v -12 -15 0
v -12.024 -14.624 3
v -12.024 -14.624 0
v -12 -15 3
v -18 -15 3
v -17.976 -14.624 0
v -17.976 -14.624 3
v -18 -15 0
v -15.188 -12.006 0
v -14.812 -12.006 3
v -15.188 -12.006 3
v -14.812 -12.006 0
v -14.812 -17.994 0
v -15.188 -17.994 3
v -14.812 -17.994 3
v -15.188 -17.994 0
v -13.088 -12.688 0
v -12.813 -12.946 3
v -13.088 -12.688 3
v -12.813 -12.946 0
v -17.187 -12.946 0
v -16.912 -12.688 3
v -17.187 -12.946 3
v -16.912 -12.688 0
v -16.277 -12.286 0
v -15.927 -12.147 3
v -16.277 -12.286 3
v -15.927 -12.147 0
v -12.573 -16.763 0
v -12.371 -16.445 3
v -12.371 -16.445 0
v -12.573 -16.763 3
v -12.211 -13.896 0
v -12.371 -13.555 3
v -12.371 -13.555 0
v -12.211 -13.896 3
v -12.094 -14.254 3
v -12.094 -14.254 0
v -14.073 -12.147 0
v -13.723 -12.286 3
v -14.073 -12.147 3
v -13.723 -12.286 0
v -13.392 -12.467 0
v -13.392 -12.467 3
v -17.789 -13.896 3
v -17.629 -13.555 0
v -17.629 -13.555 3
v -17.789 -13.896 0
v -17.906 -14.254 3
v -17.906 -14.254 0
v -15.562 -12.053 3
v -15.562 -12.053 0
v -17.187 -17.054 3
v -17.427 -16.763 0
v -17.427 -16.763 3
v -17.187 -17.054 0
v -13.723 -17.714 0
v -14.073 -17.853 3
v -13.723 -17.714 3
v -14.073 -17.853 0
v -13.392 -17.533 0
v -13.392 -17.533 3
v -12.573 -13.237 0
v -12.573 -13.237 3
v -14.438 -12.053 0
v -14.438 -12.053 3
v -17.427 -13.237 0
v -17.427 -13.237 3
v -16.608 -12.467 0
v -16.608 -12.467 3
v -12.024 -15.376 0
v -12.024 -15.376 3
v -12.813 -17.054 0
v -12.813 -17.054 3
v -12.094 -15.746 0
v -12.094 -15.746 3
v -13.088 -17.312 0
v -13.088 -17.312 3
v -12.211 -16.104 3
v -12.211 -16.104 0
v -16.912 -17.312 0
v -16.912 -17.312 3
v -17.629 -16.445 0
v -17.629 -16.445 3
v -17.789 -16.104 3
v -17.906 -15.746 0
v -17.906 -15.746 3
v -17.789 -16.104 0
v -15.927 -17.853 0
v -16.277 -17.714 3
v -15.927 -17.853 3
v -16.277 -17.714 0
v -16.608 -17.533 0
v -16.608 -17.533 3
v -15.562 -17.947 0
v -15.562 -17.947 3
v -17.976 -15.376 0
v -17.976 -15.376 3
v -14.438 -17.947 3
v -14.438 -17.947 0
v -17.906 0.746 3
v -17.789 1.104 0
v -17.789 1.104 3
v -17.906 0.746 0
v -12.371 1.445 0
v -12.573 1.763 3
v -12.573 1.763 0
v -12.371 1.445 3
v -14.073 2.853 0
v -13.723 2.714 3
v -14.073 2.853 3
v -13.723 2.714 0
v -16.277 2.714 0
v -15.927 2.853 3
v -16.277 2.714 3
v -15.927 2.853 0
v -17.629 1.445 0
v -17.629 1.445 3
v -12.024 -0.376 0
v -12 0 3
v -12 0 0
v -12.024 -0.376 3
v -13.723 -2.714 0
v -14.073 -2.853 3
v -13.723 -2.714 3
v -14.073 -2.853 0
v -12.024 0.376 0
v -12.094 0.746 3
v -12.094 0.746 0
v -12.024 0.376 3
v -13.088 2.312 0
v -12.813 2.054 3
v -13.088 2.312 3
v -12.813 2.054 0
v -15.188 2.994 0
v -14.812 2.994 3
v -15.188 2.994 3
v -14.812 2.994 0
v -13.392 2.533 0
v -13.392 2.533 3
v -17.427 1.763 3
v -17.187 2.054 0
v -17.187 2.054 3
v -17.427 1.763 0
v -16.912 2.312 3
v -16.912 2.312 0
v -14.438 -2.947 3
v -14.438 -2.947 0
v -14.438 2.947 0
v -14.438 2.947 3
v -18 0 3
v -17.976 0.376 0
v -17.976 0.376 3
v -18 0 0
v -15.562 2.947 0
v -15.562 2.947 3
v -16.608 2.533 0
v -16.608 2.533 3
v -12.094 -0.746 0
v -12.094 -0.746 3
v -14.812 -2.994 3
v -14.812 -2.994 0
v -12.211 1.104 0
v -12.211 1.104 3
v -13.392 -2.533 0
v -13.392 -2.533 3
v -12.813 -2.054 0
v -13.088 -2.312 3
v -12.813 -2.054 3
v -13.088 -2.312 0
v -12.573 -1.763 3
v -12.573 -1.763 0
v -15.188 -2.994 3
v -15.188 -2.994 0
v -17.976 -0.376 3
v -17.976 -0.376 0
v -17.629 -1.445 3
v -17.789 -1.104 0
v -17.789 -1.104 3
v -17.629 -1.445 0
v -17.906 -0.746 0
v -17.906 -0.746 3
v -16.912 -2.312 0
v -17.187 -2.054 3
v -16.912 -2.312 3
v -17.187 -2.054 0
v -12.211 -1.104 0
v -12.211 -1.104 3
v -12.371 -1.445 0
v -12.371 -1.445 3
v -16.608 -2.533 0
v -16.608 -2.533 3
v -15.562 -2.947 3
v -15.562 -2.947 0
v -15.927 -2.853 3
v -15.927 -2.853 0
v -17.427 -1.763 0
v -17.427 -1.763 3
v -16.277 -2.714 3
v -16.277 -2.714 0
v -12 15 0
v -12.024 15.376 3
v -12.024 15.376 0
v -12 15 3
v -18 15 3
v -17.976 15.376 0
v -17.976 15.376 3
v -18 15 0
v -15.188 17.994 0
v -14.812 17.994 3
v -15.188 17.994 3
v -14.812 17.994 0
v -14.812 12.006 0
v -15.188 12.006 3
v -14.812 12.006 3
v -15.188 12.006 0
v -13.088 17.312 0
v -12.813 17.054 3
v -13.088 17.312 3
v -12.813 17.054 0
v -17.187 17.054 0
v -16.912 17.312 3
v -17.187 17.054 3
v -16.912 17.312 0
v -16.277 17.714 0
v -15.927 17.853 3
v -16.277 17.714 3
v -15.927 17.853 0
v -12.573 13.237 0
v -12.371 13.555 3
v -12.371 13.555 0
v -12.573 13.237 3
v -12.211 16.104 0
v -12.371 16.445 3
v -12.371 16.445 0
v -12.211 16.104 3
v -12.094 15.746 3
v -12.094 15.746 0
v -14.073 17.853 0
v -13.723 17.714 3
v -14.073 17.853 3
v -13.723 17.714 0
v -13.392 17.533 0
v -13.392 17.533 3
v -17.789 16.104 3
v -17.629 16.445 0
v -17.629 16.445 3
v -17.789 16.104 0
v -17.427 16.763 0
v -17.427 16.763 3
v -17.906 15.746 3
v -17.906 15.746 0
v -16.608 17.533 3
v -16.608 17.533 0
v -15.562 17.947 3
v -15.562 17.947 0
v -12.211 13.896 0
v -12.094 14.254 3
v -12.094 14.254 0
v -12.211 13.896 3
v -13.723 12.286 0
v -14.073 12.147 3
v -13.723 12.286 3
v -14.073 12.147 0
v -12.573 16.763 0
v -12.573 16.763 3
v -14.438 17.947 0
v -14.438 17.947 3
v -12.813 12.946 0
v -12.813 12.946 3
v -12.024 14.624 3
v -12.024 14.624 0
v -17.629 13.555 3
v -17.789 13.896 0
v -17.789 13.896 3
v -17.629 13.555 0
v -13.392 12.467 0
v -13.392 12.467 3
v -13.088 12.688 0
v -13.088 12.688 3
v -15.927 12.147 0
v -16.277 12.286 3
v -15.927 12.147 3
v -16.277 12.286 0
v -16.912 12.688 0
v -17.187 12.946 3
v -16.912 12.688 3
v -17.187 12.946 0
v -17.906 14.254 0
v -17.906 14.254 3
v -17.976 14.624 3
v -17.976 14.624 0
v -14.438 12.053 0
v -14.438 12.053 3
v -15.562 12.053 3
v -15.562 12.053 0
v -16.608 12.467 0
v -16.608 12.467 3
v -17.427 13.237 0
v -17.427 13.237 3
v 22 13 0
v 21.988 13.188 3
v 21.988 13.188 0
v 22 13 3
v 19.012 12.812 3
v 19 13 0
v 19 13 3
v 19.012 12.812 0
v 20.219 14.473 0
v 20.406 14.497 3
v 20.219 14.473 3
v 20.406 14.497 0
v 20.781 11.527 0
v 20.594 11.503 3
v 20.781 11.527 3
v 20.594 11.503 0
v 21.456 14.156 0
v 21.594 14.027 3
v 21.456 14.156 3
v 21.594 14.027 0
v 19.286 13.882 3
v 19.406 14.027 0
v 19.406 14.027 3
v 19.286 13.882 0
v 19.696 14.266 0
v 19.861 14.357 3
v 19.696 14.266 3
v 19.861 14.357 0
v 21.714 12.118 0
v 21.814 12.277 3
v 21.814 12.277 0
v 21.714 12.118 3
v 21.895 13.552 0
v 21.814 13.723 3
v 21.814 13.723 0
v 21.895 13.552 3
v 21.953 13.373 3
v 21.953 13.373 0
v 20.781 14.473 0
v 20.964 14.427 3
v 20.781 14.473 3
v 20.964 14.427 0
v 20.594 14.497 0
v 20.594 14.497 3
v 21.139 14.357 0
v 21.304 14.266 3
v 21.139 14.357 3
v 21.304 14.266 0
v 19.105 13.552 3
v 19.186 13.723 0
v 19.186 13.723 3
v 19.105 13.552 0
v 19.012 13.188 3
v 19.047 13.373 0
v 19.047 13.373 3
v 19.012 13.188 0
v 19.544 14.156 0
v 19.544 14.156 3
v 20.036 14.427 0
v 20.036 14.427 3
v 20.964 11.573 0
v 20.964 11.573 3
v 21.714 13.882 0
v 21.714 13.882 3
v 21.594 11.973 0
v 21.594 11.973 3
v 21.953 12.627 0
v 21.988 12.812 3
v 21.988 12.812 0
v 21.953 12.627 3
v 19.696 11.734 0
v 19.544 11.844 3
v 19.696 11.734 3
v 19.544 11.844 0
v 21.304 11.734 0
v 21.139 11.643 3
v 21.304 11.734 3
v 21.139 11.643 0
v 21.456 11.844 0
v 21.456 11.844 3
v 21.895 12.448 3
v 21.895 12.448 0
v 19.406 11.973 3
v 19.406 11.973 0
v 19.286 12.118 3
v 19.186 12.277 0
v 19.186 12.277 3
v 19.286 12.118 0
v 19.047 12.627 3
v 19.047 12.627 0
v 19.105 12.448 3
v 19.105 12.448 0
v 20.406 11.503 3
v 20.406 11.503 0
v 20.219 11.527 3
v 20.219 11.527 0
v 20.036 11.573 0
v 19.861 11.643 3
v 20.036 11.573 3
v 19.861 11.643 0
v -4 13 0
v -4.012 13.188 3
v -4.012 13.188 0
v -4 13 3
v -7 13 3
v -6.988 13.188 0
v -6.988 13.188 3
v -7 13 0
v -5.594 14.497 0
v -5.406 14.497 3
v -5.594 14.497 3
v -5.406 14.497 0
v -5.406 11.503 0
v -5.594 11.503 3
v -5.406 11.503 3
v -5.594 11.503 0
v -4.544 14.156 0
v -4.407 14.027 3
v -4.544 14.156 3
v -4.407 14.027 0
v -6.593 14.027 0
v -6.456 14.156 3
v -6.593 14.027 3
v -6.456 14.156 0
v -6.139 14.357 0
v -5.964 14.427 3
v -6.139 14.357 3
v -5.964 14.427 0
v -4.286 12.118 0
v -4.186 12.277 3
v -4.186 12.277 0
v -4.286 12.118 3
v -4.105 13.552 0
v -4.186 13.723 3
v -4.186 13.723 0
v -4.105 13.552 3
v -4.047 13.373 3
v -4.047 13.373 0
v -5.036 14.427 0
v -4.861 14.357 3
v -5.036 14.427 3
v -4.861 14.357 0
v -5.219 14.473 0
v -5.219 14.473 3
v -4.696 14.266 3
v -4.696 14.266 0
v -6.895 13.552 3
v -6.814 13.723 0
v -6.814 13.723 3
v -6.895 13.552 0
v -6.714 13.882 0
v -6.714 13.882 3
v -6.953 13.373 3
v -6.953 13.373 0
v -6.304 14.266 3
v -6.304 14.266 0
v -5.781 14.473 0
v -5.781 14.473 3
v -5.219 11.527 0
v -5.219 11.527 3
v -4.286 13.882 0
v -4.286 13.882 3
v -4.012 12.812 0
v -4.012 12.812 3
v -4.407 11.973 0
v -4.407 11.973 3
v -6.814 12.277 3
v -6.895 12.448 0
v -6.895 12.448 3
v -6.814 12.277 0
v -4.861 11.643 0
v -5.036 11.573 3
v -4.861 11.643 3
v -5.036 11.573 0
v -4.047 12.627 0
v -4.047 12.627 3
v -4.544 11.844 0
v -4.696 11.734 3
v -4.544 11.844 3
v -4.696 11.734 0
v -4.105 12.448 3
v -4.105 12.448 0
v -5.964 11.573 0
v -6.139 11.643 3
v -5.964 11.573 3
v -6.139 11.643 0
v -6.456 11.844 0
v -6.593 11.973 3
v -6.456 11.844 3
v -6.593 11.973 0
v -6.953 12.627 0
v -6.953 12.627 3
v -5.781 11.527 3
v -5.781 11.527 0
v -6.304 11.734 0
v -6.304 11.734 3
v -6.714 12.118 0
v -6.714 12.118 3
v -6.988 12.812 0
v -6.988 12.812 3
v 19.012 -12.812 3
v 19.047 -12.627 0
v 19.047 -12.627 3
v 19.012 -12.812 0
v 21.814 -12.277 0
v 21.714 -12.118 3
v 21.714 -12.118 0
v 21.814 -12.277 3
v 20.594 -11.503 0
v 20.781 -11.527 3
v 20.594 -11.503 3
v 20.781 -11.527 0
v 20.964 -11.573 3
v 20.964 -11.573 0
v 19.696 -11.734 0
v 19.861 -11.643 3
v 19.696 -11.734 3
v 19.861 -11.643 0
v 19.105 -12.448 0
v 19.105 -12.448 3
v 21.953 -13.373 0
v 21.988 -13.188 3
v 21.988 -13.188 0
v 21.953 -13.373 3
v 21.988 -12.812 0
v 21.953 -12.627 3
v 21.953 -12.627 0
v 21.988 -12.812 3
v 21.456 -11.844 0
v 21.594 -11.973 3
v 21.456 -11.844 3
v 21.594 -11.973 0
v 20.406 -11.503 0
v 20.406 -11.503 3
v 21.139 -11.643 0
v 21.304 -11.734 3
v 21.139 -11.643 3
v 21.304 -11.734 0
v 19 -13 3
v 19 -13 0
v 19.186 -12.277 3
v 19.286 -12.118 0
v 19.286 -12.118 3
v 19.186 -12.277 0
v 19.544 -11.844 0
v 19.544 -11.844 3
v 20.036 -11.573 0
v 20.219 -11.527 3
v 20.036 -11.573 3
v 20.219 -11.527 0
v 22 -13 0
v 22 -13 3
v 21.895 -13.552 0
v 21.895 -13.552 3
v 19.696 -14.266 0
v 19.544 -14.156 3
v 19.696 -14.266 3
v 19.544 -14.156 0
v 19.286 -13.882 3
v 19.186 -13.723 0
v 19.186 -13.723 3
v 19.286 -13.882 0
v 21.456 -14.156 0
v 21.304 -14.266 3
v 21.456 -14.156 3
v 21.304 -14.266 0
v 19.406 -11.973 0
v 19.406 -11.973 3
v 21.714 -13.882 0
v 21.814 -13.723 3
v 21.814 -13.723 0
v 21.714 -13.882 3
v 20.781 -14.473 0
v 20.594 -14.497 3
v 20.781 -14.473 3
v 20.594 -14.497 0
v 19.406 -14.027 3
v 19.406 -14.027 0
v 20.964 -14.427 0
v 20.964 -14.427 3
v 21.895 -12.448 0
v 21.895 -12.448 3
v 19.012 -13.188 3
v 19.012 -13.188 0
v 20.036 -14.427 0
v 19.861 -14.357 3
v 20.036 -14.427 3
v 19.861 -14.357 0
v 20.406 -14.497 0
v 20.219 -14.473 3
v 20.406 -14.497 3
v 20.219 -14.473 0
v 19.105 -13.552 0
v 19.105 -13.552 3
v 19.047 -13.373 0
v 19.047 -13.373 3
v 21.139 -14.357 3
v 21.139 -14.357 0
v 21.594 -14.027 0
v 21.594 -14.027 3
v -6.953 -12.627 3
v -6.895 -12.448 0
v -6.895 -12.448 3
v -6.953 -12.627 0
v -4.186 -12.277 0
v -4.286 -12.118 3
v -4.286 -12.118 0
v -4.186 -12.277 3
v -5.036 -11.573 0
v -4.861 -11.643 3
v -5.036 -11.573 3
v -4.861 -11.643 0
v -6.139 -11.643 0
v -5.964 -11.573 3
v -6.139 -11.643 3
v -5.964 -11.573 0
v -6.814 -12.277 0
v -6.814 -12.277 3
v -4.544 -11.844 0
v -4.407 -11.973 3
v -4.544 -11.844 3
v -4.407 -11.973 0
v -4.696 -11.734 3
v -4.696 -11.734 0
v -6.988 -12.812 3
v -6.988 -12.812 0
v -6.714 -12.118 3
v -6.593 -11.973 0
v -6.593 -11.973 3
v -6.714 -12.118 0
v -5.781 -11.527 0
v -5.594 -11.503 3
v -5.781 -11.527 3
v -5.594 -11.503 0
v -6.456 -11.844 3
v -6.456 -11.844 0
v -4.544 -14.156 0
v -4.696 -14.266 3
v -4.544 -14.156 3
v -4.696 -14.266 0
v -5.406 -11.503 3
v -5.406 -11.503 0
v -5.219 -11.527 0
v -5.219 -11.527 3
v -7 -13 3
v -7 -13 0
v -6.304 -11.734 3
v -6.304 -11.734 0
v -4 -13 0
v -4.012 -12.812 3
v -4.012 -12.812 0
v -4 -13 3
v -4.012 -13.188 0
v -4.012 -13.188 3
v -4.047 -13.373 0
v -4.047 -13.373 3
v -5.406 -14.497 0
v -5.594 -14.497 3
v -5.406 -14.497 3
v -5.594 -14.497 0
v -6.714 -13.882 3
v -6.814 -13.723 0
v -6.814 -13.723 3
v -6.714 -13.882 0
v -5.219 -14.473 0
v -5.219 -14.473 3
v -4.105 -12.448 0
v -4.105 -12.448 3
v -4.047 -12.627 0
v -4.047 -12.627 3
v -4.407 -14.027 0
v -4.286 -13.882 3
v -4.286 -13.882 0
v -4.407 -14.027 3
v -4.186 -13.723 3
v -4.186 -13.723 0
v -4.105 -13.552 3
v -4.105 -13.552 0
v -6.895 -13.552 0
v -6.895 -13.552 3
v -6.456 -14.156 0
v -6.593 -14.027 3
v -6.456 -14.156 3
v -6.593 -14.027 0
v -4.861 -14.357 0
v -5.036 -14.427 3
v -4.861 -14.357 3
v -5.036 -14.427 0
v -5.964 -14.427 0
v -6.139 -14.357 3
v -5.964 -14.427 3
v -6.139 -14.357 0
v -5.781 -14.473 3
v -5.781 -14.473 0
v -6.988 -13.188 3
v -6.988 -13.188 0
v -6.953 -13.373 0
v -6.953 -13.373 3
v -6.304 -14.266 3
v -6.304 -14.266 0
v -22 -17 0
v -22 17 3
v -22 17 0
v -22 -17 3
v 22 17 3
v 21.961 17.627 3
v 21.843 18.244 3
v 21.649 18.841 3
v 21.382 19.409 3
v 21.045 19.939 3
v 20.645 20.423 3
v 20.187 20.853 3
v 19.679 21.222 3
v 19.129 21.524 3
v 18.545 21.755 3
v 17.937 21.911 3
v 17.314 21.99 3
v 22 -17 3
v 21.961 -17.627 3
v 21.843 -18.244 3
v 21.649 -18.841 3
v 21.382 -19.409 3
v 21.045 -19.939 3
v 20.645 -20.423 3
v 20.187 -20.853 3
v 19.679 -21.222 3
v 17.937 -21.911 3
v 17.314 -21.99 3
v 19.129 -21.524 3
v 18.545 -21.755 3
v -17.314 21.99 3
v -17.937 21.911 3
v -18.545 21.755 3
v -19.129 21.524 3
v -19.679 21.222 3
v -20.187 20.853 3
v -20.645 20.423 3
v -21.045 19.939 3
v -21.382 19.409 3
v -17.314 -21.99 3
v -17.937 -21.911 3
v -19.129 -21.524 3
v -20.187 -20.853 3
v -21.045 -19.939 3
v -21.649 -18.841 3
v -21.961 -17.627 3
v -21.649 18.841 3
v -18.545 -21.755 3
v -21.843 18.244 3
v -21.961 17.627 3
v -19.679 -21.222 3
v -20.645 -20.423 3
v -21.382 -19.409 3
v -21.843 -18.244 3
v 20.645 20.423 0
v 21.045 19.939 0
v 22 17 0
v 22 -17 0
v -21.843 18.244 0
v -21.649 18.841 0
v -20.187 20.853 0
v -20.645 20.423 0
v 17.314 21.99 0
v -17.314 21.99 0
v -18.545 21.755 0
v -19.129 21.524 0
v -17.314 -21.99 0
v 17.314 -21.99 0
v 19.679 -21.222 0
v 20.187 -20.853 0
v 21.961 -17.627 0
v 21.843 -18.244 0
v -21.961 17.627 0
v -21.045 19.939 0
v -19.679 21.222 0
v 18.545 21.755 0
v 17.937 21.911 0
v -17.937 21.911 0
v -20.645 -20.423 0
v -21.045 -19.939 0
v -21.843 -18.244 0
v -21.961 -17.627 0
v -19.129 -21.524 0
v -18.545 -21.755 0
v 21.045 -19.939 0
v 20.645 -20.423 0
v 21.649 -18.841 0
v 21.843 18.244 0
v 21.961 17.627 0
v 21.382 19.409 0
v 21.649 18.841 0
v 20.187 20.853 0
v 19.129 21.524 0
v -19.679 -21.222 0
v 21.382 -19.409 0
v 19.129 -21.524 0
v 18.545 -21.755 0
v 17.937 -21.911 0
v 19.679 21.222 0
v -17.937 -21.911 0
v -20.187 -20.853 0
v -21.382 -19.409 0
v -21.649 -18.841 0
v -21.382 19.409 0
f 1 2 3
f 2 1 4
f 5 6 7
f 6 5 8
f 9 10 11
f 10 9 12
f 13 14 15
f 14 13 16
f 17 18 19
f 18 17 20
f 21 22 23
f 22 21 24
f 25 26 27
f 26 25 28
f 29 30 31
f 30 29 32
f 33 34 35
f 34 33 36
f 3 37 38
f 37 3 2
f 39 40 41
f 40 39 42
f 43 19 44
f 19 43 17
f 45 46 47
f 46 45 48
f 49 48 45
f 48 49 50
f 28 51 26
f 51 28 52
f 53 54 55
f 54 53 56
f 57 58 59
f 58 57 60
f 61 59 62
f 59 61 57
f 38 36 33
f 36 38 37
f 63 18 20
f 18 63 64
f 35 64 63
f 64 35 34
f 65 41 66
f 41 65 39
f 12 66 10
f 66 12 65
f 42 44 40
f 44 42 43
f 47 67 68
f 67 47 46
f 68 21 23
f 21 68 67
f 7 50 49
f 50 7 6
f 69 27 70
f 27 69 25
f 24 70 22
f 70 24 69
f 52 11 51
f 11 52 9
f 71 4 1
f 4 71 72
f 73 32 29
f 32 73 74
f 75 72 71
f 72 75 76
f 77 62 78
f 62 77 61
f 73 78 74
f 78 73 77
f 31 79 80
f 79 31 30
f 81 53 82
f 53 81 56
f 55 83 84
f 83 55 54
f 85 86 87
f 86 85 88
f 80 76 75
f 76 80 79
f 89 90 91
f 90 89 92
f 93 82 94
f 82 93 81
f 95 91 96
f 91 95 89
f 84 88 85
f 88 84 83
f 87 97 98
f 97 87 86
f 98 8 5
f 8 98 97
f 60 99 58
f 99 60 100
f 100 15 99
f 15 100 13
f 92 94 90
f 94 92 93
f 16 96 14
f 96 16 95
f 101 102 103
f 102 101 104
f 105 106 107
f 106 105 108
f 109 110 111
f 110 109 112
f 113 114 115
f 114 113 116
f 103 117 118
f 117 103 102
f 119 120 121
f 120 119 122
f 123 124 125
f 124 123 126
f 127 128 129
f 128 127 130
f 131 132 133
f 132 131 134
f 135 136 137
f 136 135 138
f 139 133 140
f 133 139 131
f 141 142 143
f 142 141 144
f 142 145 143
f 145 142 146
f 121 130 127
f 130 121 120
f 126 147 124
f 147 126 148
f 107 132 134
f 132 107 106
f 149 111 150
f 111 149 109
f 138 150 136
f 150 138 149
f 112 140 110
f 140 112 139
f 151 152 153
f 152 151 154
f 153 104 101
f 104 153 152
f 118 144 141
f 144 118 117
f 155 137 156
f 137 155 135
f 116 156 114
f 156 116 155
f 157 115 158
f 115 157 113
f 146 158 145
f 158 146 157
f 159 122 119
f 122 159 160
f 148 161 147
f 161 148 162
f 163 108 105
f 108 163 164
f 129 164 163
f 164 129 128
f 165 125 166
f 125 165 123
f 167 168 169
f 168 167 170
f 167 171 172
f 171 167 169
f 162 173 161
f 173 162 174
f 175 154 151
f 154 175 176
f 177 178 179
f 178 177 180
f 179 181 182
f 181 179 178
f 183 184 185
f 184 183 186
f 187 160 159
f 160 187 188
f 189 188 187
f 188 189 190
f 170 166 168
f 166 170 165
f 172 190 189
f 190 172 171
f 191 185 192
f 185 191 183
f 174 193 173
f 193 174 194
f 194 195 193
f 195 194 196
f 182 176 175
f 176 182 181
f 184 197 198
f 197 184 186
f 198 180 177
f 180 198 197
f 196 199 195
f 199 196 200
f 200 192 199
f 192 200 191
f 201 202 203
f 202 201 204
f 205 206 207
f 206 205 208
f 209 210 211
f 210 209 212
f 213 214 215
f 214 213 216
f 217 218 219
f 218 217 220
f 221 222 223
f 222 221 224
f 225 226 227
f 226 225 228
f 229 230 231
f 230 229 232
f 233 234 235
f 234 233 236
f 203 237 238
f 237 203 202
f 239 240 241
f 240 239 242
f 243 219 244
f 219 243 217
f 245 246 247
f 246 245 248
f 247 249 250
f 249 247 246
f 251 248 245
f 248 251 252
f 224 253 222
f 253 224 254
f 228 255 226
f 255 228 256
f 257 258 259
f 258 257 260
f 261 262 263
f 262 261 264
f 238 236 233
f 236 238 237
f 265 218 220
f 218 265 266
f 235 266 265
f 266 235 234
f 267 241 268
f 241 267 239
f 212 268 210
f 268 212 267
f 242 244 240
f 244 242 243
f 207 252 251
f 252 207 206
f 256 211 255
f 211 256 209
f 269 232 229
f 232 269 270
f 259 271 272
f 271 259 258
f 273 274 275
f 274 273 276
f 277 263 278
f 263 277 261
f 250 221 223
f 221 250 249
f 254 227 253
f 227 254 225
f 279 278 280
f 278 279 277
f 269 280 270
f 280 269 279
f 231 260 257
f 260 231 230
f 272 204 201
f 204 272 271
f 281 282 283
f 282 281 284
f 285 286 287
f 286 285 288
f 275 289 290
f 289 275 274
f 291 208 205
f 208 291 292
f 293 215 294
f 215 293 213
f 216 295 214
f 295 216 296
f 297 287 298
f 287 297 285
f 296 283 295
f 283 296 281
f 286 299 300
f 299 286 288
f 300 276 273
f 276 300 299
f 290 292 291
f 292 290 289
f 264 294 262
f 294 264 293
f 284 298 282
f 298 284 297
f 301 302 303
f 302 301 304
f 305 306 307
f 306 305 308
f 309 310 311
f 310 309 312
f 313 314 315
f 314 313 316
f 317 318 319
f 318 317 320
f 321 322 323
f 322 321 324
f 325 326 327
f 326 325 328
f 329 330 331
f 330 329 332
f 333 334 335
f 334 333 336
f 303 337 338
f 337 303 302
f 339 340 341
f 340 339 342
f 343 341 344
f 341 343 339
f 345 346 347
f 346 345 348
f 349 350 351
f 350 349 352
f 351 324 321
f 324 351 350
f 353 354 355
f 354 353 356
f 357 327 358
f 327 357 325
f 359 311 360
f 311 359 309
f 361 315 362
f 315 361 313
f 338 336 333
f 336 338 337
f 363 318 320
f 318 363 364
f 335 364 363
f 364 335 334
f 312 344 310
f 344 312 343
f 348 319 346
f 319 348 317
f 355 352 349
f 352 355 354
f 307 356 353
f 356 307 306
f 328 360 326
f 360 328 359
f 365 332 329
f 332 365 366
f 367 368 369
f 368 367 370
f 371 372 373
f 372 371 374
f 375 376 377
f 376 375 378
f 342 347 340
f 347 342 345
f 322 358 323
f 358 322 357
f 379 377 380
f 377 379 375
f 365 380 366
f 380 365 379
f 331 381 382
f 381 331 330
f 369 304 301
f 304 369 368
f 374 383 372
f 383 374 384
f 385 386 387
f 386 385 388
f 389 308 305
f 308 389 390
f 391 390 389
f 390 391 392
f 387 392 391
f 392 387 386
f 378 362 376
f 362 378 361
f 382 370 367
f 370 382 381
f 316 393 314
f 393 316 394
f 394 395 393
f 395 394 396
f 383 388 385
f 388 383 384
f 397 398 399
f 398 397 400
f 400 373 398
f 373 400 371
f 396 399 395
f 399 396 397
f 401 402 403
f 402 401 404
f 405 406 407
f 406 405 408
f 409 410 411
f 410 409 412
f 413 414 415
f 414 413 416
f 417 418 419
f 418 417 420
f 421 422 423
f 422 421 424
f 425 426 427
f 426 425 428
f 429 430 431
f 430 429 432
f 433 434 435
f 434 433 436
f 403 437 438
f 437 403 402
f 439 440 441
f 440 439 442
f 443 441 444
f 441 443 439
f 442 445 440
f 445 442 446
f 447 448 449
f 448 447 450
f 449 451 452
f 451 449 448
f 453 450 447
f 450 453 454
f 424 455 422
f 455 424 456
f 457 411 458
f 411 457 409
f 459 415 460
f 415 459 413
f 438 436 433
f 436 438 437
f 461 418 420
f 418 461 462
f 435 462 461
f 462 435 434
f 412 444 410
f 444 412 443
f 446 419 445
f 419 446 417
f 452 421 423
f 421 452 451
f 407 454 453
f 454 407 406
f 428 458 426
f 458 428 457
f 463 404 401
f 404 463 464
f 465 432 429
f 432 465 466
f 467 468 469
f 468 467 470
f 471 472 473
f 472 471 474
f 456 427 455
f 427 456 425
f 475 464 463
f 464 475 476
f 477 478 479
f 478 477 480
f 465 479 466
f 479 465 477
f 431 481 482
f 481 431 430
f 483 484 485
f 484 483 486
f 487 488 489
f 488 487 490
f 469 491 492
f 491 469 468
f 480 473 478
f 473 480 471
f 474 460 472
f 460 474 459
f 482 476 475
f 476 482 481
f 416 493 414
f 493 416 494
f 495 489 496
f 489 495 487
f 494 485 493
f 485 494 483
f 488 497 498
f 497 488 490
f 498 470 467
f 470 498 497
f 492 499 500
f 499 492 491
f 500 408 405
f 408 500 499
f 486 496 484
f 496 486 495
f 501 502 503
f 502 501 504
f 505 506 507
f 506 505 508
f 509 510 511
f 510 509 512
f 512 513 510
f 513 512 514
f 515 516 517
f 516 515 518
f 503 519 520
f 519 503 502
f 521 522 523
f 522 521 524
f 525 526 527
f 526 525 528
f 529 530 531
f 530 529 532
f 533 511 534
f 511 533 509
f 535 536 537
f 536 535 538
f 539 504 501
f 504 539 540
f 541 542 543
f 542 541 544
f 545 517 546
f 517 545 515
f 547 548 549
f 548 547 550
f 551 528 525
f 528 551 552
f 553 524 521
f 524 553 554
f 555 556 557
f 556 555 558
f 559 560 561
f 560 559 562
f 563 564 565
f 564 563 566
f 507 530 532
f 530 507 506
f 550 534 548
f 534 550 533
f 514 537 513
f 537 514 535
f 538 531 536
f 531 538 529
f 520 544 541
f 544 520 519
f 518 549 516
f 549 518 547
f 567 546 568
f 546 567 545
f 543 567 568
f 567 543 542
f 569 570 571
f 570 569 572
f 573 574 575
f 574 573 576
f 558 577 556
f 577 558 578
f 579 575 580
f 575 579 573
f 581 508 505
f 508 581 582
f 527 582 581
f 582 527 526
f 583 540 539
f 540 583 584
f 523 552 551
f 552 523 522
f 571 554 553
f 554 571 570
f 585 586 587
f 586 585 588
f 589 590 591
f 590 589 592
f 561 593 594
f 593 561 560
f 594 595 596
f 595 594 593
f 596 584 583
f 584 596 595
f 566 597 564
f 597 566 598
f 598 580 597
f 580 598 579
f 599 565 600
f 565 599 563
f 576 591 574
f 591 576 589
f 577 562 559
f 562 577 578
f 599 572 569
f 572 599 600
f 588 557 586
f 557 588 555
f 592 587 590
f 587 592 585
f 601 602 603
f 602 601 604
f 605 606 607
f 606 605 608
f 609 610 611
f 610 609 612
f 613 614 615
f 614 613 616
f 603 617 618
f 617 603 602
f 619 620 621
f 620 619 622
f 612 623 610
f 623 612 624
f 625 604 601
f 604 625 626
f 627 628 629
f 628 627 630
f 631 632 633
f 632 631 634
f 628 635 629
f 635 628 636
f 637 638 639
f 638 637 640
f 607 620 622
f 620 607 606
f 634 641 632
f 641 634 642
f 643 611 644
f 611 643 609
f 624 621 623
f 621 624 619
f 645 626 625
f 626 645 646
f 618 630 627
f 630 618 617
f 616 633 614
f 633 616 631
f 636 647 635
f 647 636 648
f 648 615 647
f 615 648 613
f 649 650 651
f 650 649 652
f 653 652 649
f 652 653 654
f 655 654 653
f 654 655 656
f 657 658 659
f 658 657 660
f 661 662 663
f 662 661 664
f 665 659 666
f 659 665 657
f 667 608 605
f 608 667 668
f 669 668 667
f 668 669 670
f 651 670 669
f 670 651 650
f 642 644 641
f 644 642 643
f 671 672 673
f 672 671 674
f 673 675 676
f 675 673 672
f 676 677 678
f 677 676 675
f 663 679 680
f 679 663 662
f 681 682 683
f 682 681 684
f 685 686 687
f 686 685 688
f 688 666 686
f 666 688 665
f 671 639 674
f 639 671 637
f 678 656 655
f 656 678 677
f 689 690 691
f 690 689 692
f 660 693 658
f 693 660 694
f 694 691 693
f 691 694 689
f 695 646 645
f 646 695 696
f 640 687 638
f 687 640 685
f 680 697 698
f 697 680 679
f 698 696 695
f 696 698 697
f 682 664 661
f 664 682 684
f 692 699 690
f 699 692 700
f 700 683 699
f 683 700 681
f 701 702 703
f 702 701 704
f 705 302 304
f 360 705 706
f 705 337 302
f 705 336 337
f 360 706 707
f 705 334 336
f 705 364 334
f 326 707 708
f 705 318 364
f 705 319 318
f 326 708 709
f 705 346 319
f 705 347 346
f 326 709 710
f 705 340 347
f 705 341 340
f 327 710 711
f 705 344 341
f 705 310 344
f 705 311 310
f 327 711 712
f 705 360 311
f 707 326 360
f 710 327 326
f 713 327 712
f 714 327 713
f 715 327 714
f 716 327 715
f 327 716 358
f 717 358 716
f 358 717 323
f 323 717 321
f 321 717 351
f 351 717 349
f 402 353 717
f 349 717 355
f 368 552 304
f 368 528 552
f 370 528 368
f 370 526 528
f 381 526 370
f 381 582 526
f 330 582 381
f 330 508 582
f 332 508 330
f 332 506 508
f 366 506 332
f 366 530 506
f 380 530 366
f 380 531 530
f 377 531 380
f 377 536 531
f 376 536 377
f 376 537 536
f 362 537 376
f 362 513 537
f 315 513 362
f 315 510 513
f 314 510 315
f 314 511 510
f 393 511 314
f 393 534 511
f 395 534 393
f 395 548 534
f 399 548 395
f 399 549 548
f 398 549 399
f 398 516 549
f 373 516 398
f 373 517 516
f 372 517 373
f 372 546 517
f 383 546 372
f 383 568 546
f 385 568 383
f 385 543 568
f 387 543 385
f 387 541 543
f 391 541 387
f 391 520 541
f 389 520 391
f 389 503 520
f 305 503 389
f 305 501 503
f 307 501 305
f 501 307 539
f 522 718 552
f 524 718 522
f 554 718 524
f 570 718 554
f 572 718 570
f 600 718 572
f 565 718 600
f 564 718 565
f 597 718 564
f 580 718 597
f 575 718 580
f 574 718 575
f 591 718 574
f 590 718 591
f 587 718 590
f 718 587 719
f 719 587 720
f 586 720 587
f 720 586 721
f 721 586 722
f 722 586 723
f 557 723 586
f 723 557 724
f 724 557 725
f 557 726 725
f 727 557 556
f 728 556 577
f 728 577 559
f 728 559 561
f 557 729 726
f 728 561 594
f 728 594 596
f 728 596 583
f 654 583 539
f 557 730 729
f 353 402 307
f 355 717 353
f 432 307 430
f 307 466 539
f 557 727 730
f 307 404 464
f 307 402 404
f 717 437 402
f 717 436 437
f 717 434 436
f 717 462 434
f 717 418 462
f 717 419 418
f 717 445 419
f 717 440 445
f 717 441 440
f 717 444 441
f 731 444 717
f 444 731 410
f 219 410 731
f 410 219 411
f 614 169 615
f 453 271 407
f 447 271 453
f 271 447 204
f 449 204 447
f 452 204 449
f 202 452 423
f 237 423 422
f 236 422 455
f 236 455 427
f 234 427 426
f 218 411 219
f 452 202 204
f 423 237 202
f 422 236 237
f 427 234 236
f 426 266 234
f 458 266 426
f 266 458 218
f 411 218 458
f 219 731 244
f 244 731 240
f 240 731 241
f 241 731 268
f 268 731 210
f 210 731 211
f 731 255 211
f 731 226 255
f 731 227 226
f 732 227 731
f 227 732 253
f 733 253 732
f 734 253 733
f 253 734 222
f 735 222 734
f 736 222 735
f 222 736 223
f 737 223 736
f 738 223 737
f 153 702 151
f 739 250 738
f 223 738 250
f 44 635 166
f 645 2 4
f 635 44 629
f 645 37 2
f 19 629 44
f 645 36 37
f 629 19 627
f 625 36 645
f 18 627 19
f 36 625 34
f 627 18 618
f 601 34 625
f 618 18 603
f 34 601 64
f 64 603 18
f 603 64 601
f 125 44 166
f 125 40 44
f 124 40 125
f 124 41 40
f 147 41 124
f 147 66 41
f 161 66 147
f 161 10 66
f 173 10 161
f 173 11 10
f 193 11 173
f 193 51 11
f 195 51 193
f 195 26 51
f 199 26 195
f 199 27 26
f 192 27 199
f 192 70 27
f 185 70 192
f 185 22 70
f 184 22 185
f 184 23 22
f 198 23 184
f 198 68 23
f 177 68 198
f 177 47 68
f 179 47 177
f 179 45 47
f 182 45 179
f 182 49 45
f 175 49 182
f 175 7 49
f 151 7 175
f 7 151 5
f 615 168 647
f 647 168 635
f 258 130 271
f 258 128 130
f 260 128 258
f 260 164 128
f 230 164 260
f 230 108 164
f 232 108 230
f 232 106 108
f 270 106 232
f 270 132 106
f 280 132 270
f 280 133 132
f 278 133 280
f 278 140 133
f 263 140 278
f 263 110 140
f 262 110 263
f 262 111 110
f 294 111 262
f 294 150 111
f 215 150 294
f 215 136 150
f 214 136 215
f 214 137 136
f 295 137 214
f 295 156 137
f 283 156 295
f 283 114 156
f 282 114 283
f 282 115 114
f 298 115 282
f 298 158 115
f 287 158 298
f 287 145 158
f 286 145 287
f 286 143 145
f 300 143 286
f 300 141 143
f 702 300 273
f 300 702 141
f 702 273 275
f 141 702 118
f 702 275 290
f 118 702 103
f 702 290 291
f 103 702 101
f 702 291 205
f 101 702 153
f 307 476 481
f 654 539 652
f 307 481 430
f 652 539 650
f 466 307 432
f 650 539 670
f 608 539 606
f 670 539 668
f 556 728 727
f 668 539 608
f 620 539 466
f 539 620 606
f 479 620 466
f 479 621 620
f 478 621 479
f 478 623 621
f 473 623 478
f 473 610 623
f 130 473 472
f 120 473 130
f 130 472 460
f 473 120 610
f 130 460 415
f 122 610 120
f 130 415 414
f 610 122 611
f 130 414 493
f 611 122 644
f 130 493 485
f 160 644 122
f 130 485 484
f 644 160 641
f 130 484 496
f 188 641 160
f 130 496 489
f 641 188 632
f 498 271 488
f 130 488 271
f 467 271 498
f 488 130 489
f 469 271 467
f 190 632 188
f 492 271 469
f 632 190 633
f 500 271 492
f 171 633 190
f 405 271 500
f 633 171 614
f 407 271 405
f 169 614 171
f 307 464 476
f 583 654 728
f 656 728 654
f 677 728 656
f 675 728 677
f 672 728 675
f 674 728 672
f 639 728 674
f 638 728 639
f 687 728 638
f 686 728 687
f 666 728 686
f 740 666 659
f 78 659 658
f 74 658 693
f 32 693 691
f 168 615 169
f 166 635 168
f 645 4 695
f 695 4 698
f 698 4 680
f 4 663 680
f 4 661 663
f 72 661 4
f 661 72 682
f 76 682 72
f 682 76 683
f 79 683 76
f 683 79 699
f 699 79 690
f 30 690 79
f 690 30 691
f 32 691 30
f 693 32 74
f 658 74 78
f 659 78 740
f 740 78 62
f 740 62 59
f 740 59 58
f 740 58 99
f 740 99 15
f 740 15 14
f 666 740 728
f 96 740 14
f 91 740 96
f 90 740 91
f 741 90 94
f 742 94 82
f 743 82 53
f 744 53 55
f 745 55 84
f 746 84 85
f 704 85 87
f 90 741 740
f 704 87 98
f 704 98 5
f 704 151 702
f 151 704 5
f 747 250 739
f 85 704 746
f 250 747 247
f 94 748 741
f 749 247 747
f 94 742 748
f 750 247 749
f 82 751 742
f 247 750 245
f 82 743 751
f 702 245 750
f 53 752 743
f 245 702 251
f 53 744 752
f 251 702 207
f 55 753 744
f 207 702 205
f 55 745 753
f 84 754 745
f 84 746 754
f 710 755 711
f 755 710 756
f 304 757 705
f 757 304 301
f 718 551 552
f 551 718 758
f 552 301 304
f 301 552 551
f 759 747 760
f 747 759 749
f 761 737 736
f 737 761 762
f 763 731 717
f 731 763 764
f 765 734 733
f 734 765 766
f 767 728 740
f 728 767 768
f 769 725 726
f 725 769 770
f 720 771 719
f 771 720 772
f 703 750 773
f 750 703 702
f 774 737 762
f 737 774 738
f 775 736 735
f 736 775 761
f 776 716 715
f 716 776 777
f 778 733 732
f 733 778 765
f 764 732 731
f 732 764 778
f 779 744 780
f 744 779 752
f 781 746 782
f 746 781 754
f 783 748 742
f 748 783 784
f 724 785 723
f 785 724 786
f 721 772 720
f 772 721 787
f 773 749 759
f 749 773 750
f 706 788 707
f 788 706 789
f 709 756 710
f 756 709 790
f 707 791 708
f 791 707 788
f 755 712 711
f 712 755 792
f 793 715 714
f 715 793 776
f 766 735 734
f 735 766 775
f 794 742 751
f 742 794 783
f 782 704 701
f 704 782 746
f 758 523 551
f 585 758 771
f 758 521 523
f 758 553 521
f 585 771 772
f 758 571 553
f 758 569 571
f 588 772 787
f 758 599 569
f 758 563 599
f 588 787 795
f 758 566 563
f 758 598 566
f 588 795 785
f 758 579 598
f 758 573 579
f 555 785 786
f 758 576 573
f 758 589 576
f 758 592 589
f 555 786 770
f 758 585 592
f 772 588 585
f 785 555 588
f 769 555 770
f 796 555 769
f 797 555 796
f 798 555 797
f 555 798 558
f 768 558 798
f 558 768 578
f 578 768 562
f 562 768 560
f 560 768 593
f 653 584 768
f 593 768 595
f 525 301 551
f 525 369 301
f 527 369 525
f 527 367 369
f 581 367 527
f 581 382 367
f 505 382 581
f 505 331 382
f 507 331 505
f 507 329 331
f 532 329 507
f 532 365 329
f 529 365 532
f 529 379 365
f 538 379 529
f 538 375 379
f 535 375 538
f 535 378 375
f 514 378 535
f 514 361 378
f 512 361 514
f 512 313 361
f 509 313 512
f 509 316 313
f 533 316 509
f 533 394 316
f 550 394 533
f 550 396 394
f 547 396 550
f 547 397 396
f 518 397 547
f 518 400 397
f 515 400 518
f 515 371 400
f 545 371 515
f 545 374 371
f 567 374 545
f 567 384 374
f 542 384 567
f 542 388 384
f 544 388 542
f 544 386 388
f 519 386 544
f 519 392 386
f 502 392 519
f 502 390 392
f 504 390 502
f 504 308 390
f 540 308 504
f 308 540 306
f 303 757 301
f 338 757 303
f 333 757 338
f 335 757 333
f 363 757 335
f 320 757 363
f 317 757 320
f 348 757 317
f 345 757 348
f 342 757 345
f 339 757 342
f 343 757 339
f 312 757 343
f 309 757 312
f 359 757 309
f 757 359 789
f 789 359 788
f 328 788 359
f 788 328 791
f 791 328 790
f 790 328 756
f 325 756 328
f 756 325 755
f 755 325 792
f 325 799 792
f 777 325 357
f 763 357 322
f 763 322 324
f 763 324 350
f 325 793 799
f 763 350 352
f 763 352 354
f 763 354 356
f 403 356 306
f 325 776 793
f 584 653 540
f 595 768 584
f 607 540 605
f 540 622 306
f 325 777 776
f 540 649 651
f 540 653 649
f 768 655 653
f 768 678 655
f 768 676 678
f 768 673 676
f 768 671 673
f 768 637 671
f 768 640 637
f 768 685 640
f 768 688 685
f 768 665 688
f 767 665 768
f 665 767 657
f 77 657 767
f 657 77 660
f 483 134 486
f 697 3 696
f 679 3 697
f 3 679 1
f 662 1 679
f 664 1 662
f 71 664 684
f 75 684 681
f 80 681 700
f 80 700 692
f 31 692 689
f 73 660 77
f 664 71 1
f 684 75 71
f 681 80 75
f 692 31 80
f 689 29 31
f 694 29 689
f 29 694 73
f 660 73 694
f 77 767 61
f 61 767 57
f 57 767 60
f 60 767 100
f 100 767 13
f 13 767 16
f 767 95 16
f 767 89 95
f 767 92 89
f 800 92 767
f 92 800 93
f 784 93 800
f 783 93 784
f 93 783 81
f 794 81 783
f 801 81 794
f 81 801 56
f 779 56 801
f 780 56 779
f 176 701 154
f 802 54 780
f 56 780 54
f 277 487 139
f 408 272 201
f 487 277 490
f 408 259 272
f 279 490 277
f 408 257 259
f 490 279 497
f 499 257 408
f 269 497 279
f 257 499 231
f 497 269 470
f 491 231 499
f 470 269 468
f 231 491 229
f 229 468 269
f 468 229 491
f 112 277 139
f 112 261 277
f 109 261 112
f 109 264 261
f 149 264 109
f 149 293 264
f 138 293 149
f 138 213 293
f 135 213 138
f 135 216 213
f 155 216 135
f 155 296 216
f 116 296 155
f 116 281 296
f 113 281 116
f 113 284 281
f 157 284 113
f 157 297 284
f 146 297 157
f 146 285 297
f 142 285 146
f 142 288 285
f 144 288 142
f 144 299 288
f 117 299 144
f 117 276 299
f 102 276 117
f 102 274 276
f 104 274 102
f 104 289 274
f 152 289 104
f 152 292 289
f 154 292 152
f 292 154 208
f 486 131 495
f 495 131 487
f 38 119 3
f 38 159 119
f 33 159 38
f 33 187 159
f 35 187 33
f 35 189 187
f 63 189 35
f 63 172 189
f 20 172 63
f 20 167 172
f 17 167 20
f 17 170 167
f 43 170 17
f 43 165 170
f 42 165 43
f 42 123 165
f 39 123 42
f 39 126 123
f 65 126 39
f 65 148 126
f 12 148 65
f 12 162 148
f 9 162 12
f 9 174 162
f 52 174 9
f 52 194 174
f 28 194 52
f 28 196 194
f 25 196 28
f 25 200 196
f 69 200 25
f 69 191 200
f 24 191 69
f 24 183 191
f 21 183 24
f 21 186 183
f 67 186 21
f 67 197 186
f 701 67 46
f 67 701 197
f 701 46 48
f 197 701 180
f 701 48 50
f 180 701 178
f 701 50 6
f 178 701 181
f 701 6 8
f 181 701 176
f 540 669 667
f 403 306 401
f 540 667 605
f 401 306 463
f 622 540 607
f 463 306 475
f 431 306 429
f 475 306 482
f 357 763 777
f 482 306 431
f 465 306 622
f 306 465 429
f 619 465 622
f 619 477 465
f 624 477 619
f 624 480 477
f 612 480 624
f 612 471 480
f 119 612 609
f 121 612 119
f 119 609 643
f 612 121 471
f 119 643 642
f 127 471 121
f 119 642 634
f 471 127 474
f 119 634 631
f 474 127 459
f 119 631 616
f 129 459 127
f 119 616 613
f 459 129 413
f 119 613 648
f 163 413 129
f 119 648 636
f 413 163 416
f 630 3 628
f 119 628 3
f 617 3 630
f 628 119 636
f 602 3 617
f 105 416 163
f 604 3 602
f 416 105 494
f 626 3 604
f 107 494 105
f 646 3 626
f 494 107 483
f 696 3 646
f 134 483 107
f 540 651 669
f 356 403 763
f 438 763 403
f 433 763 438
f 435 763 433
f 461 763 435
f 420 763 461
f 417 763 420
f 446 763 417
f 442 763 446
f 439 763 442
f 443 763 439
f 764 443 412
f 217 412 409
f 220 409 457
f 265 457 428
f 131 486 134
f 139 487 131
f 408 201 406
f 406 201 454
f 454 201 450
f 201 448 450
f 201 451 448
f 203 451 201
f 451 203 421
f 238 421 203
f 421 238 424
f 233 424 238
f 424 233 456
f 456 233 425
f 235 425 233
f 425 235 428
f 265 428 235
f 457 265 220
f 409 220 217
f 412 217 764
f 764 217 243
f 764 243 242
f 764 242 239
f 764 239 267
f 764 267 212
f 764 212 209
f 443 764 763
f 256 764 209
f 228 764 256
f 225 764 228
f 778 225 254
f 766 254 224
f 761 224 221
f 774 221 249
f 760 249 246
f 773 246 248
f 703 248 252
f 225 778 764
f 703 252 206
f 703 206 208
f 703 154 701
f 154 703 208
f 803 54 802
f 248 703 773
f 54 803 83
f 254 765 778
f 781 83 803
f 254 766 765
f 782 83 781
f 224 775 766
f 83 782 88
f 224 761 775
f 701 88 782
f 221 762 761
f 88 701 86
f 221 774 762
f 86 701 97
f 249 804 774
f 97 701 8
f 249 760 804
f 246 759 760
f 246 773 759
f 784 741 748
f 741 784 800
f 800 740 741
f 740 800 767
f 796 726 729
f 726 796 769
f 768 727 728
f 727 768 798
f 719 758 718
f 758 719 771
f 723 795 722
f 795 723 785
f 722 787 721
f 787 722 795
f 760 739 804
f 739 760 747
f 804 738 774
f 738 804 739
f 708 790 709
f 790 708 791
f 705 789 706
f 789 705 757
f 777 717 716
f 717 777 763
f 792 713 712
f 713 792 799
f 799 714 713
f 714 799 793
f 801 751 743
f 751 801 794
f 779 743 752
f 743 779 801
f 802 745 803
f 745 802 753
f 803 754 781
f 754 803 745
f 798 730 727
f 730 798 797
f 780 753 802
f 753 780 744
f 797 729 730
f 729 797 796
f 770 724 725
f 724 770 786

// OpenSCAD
$fn = 50;


difference() {
	union() {
		translate(v = [0, 0, 0]) {
			rotate(a = [0, 0, 0]) {
				hull() {
					translate(v = [-17.0000000000, 17.0000000000, 0]) {
						rotate(a = [0, 0, 0]) {
							translate(v = [0, 0, 0]) {
								rotate(a = [0, 0, 0]) {
									cylinder(h = 3, r = 5);
								}
							}
						}
					}
					translate(v = [17.0000000000, 17.0000000000, 0]) {
						rotate(a = [0, 0, 0]) {
							translate(v = [0, 0, 0]) {
								rotate(a = [0, 0, 0]) {
									cylinder(h = 3, r = 5);
								}
							}
						}
					}
					translate(v = [-17.0000000000, -17.0000000000, 0]) {
						rotate(a = [0, 0, 0]) {
							translate(v = [0, 0, 0]) {
								rotate(a = [0, 0, 0]) {
									cylinder(h = 3, r = 5);
								}
							}
						}
					}
					translate(v = [17.0000000000, -17.0000000000, 0]) {
						rotate(a = [0, 0, 0]) {
							translate(v = [0, 0, 0]) {
								rotate(a = [0, 0, 0]) {
									cylinder(h = 3, r = 5);
								}
							}
						}
					}
				}
			}
		}
	}
	union() {
		translate(v = [-15.0000000000, -15.0000000000, -125.0000000000]) {
			rotate(a = [0, 0, 0]) {
				cylinder(h = 250, r = 3.0000000000);
			}
		}
		translate(v = [-15.0000000000, 0.0000000000, -125.0000000000]) {
			rotate(a = [0, 0, 0]) {
				cylinder(h = 250, r = 3.0000000000);
			}
		}
		translate(v = [-15.0000000000, 15.0000000000, -125.0000000000]) {
			rotate(a = [0, 0, 0]) {
				cylinder(h = 250, r = 3.0000000000);
			}
		}
		translate(v = [20.5000000000, 13.0000000000, -125.0000000000]) {
			rotate(a = [0, 0, 0]) {
				cylinder(h = 250, r = 1.5000000000);
			}
		}
		translate(v = [-5.5000000000, 13.0000000000, -125.0000000000]) {
			rotate(a = [0, 0, 0]) {
				cylinder(h = 250, r = 1.5000000000);
			}
		}
		translate(v = [20.5000000000, -13.0000000000, -125.0000000000]) {
			rotate(a = [0, 0, 0]) {
				cylinder(h = 250, r = 1.5000000000);
			}
		}
		translate(v = [-5.5000000000, -13.0000000000, -125.0000000000]) {
			rotate(a = [0, 0, 0]) {
				cylinder(h = 250, r = 1.5000000000);
			}
		}
	}
}
